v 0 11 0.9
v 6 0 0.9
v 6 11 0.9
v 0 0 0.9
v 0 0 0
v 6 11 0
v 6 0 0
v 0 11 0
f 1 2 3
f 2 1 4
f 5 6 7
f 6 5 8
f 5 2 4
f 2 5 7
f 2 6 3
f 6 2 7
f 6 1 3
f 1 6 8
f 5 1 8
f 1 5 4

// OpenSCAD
/* Warning, this is a very basic generator with a lot of approximation 
input data : [VQFN, QKA, 6x11x0.9mm, 56, , A, C04-01282A]
generated by com.zoubworld.electronics.cad.model3d.Basic
Date : Sun Feb 15 10:50:49 CET 2026
*/

//body
color("black")
translate([0,0,0])
cube([6.0,11.0,0.9], center=false);
